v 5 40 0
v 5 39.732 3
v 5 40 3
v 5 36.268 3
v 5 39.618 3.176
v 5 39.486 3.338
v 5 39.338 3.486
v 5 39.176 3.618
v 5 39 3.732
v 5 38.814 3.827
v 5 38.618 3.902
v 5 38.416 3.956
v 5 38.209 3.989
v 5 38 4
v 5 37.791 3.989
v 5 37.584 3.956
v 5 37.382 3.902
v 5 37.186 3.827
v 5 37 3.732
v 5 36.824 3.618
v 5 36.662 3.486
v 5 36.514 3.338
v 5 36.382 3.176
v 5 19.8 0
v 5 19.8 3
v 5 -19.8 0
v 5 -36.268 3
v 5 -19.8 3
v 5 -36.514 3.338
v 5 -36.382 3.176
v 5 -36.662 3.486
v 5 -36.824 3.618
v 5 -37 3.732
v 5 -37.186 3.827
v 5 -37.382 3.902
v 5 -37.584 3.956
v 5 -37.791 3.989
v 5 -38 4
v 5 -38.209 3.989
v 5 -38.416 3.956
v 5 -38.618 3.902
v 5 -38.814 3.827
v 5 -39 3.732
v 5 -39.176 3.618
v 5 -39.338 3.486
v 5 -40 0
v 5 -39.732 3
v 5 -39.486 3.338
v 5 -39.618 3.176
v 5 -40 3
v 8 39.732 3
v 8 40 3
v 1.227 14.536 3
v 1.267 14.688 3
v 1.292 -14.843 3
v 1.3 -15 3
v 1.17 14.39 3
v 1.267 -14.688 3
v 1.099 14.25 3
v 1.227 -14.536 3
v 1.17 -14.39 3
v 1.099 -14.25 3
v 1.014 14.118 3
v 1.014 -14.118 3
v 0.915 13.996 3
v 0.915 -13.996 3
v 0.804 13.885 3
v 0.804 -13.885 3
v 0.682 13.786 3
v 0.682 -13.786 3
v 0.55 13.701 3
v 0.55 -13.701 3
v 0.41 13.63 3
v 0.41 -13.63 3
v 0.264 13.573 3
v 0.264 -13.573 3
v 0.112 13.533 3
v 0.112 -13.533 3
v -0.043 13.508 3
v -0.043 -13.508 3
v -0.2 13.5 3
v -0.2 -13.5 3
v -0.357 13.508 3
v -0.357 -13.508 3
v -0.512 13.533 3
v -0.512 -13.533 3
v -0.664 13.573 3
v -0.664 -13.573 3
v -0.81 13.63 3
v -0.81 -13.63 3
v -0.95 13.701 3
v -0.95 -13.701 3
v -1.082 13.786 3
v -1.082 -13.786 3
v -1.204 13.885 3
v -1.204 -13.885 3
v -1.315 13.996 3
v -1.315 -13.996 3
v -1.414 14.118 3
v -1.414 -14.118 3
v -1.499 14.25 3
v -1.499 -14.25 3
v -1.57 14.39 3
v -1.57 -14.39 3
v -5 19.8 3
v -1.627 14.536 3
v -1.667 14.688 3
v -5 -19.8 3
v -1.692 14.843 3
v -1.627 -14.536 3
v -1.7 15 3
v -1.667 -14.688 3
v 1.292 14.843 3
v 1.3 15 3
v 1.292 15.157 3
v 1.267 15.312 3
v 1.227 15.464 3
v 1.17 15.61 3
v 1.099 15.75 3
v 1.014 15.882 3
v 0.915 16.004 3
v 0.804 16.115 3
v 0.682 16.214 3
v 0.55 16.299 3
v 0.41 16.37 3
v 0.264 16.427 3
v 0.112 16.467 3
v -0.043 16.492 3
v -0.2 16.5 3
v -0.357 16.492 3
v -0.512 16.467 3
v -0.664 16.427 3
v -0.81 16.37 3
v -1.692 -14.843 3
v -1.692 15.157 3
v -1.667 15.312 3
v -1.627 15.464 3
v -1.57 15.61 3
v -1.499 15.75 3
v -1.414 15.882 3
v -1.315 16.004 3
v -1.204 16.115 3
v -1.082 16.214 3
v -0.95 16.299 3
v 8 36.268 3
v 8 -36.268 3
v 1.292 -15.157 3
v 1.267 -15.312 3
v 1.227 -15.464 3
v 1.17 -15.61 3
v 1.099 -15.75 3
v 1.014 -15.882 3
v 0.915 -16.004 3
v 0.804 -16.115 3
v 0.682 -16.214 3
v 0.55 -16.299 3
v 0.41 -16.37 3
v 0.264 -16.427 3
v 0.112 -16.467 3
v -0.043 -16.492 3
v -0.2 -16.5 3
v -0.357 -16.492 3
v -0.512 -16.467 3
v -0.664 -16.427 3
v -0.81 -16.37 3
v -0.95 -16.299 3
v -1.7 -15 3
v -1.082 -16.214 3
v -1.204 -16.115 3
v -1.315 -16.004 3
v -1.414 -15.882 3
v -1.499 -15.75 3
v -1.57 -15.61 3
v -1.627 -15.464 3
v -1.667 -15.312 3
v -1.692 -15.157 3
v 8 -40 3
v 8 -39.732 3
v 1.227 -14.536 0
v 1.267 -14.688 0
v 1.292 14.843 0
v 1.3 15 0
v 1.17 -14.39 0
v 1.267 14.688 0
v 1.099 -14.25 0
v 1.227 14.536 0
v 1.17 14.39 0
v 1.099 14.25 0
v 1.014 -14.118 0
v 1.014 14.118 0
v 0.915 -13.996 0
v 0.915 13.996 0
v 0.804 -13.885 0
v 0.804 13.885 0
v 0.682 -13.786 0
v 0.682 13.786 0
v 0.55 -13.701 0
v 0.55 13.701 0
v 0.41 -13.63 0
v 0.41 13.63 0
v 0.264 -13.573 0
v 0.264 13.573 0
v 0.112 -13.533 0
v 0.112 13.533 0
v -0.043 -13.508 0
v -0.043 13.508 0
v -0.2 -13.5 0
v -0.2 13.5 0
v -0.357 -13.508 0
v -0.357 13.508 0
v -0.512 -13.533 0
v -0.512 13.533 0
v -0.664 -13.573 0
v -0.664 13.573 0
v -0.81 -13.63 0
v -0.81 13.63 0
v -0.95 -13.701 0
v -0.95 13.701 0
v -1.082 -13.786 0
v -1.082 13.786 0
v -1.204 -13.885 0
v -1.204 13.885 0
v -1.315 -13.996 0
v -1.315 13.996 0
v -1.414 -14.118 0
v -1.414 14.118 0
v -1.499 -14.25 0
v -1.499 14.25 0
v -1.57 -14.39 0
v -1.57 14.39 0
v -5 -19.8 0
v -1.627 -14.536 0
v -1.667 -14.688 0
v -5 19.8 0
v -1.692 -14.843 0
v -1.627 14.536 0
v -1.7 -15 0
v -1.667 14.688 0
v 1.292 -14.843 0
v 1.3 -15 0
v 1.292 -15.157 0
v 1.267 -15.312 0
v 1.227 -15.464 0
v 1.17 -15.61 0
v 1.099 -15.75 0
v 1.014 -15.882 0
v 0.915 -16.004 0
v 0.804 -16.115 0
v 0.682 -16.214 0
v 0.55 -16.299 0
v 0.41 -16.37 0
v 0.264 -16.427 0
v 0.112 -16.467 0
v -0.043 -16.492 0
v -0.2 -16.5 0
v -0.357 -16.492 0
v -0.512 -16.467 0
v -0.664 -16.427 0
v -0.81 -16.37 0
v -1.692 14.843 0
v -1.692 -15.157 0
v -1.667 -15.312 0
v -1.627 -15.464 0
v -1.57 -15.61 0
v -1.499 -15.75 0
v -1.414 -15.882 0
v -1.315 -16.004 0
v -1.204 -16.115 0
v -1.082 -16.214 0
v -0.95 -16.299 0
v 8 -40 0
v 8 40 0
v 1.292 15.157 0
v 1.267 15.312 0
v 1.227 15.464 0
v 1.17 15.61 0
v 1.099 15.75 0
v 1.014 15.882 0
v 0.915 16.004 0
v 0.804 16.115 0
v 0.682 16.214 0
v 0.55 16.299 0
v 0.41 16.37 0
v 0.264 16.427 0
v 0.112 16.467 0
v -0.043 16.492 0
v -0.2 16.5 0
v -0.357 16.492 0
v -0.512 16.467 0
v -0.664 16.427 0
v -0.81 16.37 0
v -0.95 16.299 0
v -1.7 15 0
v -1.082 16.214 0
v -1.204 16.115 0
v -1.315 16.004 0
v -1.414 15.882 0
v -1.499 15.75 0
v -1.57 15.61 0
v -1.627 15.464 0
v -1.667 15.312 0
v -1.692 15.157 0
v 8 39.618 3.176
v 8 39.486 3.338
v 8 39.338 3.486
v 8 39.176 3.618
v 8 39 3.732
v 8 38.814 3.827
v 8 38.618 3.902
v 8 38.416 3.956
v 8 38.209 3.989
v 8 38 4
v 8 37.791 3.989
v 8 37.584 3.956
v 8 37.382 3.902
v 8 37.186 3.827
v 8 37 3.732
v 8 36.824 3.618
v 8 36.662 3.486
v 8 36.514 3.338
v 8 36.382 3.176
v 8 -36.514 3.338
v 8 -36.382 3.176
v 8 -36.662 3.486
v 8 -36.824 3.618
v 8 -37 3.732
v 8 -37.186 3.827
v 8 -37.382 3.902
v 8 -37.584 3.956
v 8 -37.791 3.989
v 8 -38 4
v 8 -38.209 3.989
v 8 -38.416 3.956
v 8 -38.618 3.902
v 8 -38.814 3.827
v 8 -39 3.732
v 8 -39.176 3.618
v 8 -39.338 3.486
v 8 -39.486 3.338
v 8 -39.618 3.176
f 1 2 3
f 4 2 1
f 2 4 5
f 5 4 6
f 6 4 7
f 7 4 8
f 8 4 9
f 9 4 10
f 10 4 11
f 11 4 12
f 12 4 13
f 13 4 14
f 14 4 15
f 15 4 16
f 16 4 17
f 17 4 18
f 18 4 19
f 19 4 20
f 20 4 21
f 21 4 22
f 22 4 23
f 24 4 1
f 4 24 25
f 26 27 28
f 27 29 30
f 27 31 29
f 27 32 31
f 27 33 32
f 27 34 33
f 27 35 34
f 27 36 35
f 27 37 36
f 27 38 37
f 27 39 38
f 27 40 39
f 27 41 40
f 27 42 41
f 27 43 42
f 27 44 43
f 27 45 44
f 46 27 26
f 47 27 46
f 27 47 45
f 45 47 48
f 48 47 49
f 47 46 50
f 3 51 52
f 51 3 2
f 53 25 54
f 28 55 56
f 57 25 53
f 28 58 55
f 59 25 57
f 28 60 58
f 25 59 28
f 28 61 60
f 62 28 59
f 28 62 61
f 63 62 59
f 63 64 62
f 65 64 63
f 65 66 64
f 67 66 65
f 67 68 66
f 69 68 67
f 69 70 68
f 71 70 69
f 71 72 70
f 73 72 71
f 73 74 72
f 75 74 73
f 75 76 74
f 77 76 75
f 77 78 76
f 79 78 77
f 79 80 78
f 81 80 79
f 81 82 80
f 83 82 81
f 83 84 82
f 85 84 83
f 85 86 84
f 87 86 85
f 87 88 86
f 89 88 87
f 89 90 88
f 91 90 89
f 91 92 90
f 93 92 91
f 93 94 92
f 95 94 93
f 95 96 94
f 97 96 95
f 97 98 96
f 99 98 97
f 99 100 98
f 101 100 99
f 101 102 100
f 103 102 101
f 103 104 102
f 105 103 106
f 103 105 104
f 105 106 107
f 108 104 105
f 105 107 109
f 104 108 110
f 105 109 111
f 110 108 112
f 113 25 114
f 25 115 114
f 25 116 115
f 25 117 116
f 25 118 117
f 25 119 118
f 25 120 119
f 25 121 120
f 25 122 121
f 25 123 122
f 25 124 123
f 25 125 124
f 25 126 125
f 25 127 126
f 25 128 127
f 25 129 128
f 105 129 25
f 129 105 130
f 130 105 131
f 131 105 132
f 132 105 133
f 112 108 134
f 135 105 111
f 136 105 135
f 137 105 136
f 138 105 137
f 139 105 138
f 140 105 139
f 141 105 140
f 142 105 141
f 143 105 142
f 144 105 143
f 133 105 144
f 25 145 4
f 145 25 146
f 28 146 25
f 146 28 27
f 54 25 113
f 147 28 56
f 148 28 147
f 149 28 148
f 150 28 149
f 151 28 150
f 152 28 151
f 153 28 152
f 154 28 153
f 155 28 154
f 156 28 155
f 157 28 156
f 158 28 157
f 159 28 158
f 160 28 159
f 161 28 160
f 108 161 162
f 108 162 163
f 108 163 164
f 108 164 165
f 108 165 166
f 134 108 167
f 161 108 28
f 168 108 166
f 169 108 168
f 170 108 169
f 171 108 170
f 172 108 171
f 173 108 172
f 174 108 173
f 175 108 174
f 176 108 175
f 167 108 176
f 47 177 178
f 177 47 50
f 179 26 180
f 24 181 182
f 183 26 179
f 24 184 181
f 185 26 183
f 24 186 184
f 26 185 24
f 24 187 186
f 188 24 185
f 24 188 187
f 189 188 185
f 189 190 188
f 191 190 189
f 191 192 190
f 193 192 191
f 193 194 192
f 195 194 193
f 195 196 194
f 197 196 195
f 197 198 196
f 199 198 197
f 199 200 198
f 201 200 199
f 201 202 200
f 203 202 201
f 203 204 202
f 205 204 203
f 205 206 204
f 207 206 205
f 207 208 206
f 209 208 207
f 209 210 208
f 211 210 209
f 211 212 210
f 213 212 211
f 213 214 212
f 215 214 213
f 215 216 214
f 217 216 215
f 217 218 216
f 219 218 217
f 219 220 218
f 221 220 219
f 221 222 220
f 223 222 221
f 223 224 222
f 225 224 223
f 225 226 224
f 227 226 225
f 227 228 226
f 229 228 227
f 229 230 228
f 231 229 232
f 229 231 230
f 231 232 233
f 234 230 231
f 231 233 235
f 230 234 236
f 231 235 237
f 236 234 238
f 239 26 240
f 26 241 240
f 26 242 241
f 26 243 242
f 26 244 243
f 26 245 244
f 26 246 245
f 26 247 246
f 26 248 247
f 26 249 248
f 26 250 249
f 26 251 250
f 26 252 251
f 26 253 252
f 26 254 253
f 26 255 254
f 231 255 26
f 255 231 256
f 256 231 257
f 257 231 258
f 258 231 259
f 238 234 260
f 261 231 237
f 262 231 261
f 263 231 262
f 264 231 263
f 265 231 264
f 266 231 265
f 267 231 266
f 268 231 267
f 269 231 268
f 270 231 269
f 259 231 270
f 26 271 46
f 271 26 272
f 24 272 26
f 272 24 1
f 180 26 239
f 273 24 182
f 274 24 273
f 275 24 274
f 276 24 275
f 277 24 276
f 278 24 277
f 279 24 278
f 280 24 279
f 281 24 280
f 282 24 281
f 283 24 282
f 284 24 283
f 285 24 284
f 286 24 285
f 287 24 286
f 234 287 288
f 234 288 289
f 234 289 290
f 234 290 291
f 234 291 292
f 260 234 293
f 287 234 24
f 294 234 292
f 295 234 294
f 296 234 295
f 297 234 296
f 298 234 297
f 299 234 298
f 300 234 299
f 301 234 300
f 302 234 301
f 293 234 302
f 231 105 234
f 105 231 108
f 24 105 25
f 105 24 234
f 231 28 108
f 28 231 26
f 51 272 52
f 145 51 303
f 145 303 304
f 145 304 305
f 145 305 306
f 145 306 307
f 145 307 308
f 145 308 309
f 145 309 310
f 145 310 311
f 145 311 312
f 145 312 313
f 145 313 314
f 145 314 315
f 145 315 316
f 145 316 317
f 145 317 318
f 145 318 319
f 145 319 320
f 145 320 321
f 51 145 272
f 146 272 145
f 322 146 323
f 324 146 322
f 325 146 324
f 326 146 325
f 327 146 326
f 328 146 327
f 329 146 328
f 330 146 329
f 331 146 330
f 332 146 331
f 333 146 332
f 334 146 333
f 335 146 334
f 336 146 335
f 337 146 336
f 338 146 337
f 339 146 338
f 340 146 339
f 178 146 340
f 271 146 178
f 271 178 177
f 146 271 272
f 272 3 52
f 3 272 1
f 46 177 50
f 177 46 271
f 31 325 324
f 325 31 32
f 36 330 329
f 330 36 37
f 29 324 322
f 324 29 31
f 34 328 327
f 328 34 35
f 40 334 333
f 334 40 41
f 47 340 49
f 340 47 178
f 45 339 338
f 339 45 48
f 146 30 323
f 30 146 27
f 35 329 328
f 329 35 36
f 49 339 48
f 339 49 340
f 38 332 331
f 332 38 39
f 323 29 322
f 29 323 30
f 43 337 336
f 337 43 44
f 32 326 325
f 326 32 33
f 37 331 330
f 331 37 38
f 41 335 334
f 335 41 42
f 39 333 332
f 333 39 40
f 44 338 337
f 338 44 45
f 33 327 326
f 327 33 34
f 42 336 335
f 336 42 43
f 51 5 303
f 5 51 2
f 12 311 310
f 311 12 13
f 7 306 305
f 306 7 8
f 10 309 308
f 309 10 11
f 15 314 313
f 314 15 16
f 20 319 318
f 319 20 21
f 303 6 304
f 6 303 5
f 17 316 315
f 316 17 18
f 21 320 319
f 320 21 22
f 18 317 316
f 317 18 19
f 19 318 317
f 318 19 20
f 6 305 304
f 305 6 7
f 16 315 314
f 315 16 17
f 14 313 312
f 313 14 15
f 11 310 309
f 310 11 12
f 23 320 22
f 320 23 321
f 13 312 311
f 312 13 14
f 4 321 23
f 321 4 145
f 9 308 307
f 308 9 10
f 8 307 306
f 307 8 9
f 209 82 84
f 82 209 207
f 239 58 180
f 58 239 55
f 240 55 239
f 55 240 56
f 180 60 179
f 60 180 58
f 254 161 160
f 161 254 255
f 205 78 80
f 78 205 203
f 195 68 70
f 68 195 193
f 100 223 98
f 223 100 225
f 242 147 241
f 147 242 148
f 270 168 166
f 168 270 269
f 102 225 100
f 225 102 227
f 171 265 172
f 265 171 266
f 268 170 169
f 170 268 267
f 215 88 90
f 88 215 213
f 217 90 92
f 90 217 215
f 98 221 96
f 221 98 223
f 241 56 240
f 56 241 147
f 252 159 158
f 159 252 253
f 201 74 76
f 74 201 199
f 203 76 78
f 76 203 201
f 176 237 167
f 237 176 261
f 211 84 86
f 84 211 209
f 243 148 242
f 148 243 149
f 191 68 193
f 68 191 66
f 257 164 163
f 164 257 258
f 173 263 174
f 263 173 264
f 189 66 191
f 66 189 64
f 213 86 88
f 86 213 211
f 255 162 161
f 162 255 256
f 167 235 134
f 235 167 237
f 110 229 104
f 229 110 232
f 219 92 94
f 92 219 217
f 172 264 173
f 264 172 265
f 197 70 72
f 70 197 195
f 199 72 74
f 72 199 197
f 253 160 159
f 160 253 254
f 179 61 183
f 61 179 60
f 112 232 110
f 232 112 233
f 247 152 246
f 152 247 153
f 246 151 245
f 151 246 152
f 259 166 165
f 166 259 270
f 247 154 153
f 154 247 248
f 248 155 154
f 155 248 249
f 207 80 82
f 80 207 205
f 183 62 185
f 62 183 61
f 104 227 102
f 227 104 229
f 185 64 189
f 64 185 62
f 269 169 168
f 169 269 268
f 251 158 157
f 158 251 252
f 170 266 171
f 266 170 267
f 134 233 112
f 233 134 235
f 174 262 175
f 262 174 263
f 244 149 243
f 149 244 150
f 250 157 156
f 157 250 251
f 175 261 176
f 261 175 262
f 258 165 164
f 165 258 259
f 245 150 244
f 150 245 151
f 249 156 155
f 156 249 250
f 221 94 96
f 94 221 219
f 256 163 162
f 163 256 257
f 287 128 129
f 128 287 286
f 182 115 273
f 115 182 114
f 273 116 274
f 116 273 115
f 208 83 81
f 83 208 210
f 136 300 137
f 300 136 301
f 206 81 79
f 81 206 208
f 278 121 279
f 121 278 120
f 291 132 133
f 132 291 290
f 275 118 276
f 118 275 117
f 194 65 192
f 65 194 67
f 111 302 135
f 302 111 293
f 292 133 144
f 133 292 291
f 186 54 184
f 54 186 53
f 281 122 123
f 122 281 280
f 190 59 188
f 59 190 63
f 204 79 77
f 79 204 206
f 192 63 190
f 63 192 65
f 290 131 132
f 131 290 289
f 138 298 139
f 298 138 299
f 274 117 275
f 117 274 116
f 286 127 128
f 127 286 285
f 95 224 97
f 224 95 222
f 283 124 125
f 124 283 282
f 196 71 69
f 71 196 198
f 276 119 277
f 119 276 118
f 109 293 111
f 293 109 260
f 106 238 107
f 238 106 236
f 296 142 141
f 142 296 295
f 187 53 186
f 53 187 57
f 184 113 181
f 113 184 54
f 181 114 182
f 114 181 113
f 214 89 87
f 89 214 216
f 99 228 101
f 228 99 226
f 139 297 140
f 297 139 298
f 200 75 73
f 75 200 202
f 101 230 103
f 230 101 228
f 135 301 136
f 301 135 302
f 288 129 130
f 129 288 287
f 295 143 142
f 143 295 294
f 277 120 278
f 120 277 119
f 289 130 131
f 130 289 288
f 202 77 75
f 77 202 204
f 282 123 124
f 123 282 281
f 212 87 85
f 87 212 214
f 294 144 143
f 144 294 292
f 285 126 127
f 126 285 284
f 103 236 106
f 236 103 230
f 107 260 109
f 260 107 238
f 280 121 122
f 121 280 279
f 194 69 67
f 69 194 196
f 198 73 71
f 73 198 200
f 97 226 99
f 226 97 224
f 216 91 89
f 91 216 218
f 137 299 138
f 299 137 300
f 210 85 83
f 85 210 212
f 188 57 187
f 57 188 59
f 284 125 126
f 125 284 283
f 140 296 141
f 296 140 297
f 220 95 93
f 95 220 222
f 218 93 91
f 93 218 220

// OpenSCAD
// file: config_5x7.scad
/*
This is the base configuration file for the 5x7" format
# we are not using the exact ANSI measures, but slightly rounded measures for slight simplification
*/

// general tolerance
vTolerance = 0.2;

// sheet film and cassette measurements (roughly based on the ANSI measurements)
vFilmSheet_l = 178;
vFilmSheet_w = 127;
vCassette_l = 214; // A min
vCassette_w = 150; // B max
vCassette_h = 14; // C max (14.3)
vLightTrap_l = 1.5; // M2
vLightTrap_w = vCassette_w;
vLightTrap_h = 1.5; // M1
vLightTrap_offsetX = 194.5; // G max
vFilmWindow_l = 171;
vFilmWindow_w = 126;
vFilmWindow_offsetX = 18;
vGroundGlass_offsetZ = 5.8;

// Graflok - although 5x7 normally doesn't have Graflok clamps, but we use this measurement on the back plate
vGraflok_h = 6; // this is not the official measurement, just measured from a camera 

// lens board measures (we are using Wista/Technika-style lensboards)
vLensboard_l = 100;
vLensboard_w = 97;
vLensboard_h = 2;
vLensboard_offsetX = -(vLensboard_l+3)/2; // caution: we have an asymetric offset!
vLensboard_offsetY = -vLensboard_w/2;
vLensboardHole_d = 85;
vLensboardLighttrap_d = 89;
vLensboardLighttrap_h = 1+vTolerance;

// bellows frame measures - the bellows frame design is derived from standardcameras.com
// back frame
vBellowsBackInner_l = 193;
vBellowsBackInner_w = vBellowsBackInner_l;
vBellowsBackOuter_l = vBellowsBackInner_l+1;
vBellowsBackOuter_w = vBellowsBackOuter_l;

vBellowsBackFrameOuter_l = 209;
vBellowsBackFrameOuter_w = vBellowsBackFrameOuter_l;
vBellowsBackFrameOuter_h = 7;
vBellowsBackFrameInner_l = 180;
vBellowsBackFrameInner_w = vBellowsBackFrameInner_l;
vBellowsBackFrameInner_h = 5;

vBellowsBackLightTrapOuter_l = vBellowsBackFrameInner_l+2*2;
vBellowsBackLightTrapOuter_w = vBellowsBackLightTrapOuter_l;
vBellowsBackLightTrap_h = 3;

vBellowsBackFrameScrewHole_d = 2;
vBellowsBackFrameScrewHole_h = 10;
vBellowsBackFrameScrewHole_offsetXY = 80;
vBellowsBackFrameScrewHole_offsetZ = vBellowsBackFrameOuter_h/2;

// front frame
vBellowsFrontInner_l = 110; 
vBellowsFrontInner_w = vBellowsFrontInner_l;
vBellowsFrontOuter_l = vBellowsFrontInner_l+1;
vBellowsFrontOuter_w = vBellowsFrontOuter_l;

vBellowsFrontFrameOuter_l = 124;
vBellowsFrontFrameOuter_w = vBellowsFrontFrameOuter_l;
vBellowsFrontFrameOuter_h = 7;
vBellowsFrontFrameInner_l = 98;
vBellowsFrontFrameInner_w = vBellowsFrontFrameInner_l;
vBellowsFrontFrameInner_h = 5;

vBellowsFrontLightTrapOuter_l = vBellowsFrontFrameInner_l+2*2;
vBellowsFrontLightTrapOuter_w = vBellowsFrontLightTrapOuter_l;
vBellowsFrontLightTrap_h = 0;

vBellowsFrontFrameScrewHole_d = 2;
vBellowsFrontFrameScrewHole_h = 10;
vBellowsFrontFrameScrewHole_offsetXY = 50;
vBellowsFrontFrameScrewHole_offsetZ = vBellowsFrontFrameOuter_h/2;

// body dimensions
vWall_strength = 5;
vBodyOuter_l = 230;
//vBodyOuter_l = 235; // make sure this is at least 4*vWall_strength larger than vBellowsBackFrameOuter_l!
vBodyOuter_w = 220; // make sure this is at least 2*vWall_strength larger than vBellowsBackFrameOuter_l!
vBodyOuter_h = 65;
vBodyEdge_r = vWall_strength;

// we will center our model on the Y axis and on the center of the bellows frame
// at least for the 4x5 version, we have to do an asymetric offset of 2.5mm on the X-axis 
vAsymOffsetX = 0;
//vAsymOffsetX = -2.5;  

// back plate
vBackPlateLength = 210; // we will probably use about the same size as the bellows back frame
vBackPlateStrength = vWall_strength;

// hinges for front lid
vHingeInnerDistance = 120;
vHingeBaseWidth = 30;
vHingeHole = 5;

// lid lock measures
vLidLockBase_d = 8;
vLidLockHole_distance = 100;

// rail dimensions
vLowerRail_w = 120;
vUpperRail_w = vLowerRail_w;

// cutout for stop indents
vStopIndent_l = 4;
vStopIndent_h = 5;
vStopIndentDistance = 30; // shorter than 25 is not necessary
vStopIndent_offsetX = 35; // don't go shorter than 20 if you intend to use a 90mm lens!

// for all dovetails we use a base width of 5mm and a base height of 5mm
// we are applying tolerances to the inner AND outer part of a dovetail, in width and height
vDoveTail_w = 5;
vDoveTail_h = 5;
vDoveTail_tolerance = 0.2;

// front standard carrier / slider
// width is depending on vUpperRail_w
vSliderBase_w = vUpperRail_w + (4*vDoveTail_w);
vSliderBase_l = 40; // make sure to have enough space in the body.


// lever plate 
vLeverPlateBase_w = vUpperRail_w - (8*vDoveTail_w);
vLeverPlateBlock_w = 50;
vLeverPlateBlock_l = vSliderBase_l-(2*vDoveTail_w);

vFrontStandard_h = 160;
vFrontStandardSlot_h = vFrontStandard_h - 30;


// lensboard carrier
vFrontPlate_length = vSliderBase_w; // vSliderBase_w is a bit too tight for 4x5", so there wie will add 5mm, for 5x7 vSliderBase_w is OK to get a squared lensboard carrier
vFrontPlate_width = vSliderBase_w; //vFrontPlate_length;
vFrontPlate_height = 16;
vEdgeCutCylinder = floor(sqrt(2*pow(vFrontPlate_width,2)))-12;

vTiltDovetail_d1 = 30-vTolerance;
vTiltDovetail_d2 = vTiltDovetail_d1+(2*vDoveTail_w);
vTiltDovetail_h = vDoveTail_w-vTolerance;

vAxisHole_d = 10+vTolerance;
vAxisHole_h = vDoveTail_w+vTolerance;

vTiltLockBolt_d = 12;
vTiltLockBolt_h = 18;
vTiltLockBoltHole_d = 7;
vTiltLockBoltHole_h = vTiltLockBolt_h;

// focusing rod
vFocusingRod_d = 6;
vFocusingKnob_d = 25;
vFocusingKnob_h = 20;

// stabilizer measures (just the outer measures of our stabilizer block, not the tripod slider)
vStabilizerBase_l = vBodyOuter_l;
vStabilizerBase_w = 100;  
vStabilizerBase_h = 2;
vStabilizerTotal_h = 7;
vStabilizerDovetailBase_w = 50;

// screw holes for the stabilizer
vLidHoleCount_x = 6;
vLidHoleDist_x = 35;
vLidHoleCount_y = 2;
vLidHoleDist_y = 60;

// screw diameters, length is individually set
vScrew1Hole_d = 3;
vScrew1ThreadHole_d = 2.2;
vScrew2Hole_d = 2;
vScrew2ThreadHole_d = 1.4;


 
// file: modules.scad
/*
This is a collection of the modules which are used heavily within the whole project.
Almost all parts rely on the modules to remain "as is", especially regarding their current orientation.
So please act very carefully here, otherwise you may screw up the complete design!

*/

// roof module - this is heavily used for dovetail cutouts
// please keep as is
module roof(l, w, h){
    polyhedron(
        points=[
            [0,0,0],
            [l,0,0],
            [l,w,0],
            [0,w,0],
            [0,w/2,h],
            [l,w/2,h]
            ],
        faces=[
            [0,1,2,3],
            [0,4,1],
            [1,4,5,2],
            [2,5,3],
            [3,5,4,0]
            ]
            );
    };

// a wedge module - this is heavily used for cutting edges
// please keep as is    
module wedge(l, w, h) {
    polyhedron(
            points=[
                [0,0,0],
                [l,0,0],
                [l,w,0],
                [0,w,0],
                [0,0,h],
                [l,0,h]
            ],
            faces=[
                [0,3,2,1],
                [0,1,5,4],
                [1,2,5],
                [2,3,4,5],
                [3,0,4]
            ]
    );
   };

// simple tube module.   
module tube(d1, d2, h) {
    difference() {
        cylinder(d=d1, h=h);
        cylinder(d=d2, h=h);
        };
    };

// mainly used for making holes for countersunk screws
// please keep as is    
module countersunk_screw(vScrew_d, vScrew_l){
    union(){
    cylinder(d=vScrew_d, h= vScrew_l);
    cylinder(d1=vScrew_d*2, h=vScrew_d);
    };
};

// module for making hexagons, e.g. hex nuts. kw is the key width
// please keep as is
module hex(kw, h) {
	render()
        translate([0, 0, h/2])
            intersection_for(a = [0, 120, 240]) {
                rotate([0, 0, a])
                    cube([kw, 3 * kw, h], true);
                }
}
// file: baseconfig.scad
/*
Here we define some variables which are independent from the camera format
*/


// some generic variables
$fn = 60; // we are using 60 fragments for cylinders and similar objects

// we are including a format specific configuration sheet - but make sure to include only one!

// include <config_4x5.scad>;
include <config_5x7.scad>;
// include <config_8x10.scad>;

// Arca Swiss tripod plate
// caution: some Arca Swiss compatible tripod heads may have slight variations
// vArca_length = xx; // the length is irrelevant here
vArca_width = 38;
vArca_height = 7;
vArcaBase_cutout = 4;
vArcaBase_height = 1.5;
// main file
// loading the base configuration
include <baseconfig.scad>;

// some modules such as hex, countersunk screws, roof, wedge are available in a module file
use <modules.scad>;


vGGClampPlate_l = 10;
vGGClampPlate_w = 40-(2*vTolerance);
vGGClampPlate_h = 3;
vGGClampPlate_offsetX = -vGGClampPlate_l/2;
vGGClampPlate_offsetY = -vGGClampPlate_w/2;
vGGClampPlate_offsetZ = 0;

vGGClampArm_l = 3;
vGGClampArm_w = 80;
vGGClampArm_h = 3;
vGGClampArm_offsetX = vGGClampPlate_l/2;
vGGClampArm_offsetY = -vGGClampArm_w/2;
vGGClampArm_offsetZ = 0;

vGGClampButton_d = vGGClampArm_h+1;
vGGClampButton_h = vGGClampArm_l;
vGGClampButton_offsetX = vGGClampPlate_l/2;
vGGClampButton_offsetY = -(vGGClampArm_w-vGGClampButton_d)/2;
vGGClampButton_offsetZ = vGGClampButton_d/2;

vScrewHole_d = 3;
vScrewHole_h = vGGClampPlate_h;
vScrewHole_offsetX = -vTolerance; 
vScrewHole_offsetY = -15;
vScrewHole_offsetZ = 0;


difference(){
    union(){
        // clamp plate
        translate([vGGClampPlate_offsetX, vGGClampPlate_offsetY, vGGClampPlate_offsetZ])
            cube([vGGClampPlate_l, vGGClampPlate_w, vGGClampPlate_h]);
        
        // clamp arms
        translate([vGGClampArm_offsetX, vGGClampArm_offsetY, vGGClampArm_offsetZ])
            cube([vGGClampArm_l, vGGClampArm_w, vGGClampArm_h]);
        
        // clamp buttons
        translate([vGGClampButton_offsetX, vGGClampButton_offsetY, vGGClampButton_offsetZ])
            rotate([0, 90, 0])
                cylinder(d=vGGClampButton_d, h=vGGClampButton_h);
        translate([vGGClampButton_offsetX, -vGGClampButton_offsetY, vGGClampButton_offsetZ])
            rotate([0, 90, 0])
                cylinder(d=vGGClampButton_d, h=vGGClampButton_h);
        };
    
    // screw holes
    translate([vScrewHole_offsetX, vScrewHole_offsetY, vScrewHole_offsetZ])
        cylinder(d=vScrewHole_d, h=vScrewHole_h );
    translate([vScrewHole_offsetX, -vScrewHole_offsetY, vScrewHole_offsetZ])
        cylinder(d=vScrewHole_d, h=vScrewHole_h );

};
